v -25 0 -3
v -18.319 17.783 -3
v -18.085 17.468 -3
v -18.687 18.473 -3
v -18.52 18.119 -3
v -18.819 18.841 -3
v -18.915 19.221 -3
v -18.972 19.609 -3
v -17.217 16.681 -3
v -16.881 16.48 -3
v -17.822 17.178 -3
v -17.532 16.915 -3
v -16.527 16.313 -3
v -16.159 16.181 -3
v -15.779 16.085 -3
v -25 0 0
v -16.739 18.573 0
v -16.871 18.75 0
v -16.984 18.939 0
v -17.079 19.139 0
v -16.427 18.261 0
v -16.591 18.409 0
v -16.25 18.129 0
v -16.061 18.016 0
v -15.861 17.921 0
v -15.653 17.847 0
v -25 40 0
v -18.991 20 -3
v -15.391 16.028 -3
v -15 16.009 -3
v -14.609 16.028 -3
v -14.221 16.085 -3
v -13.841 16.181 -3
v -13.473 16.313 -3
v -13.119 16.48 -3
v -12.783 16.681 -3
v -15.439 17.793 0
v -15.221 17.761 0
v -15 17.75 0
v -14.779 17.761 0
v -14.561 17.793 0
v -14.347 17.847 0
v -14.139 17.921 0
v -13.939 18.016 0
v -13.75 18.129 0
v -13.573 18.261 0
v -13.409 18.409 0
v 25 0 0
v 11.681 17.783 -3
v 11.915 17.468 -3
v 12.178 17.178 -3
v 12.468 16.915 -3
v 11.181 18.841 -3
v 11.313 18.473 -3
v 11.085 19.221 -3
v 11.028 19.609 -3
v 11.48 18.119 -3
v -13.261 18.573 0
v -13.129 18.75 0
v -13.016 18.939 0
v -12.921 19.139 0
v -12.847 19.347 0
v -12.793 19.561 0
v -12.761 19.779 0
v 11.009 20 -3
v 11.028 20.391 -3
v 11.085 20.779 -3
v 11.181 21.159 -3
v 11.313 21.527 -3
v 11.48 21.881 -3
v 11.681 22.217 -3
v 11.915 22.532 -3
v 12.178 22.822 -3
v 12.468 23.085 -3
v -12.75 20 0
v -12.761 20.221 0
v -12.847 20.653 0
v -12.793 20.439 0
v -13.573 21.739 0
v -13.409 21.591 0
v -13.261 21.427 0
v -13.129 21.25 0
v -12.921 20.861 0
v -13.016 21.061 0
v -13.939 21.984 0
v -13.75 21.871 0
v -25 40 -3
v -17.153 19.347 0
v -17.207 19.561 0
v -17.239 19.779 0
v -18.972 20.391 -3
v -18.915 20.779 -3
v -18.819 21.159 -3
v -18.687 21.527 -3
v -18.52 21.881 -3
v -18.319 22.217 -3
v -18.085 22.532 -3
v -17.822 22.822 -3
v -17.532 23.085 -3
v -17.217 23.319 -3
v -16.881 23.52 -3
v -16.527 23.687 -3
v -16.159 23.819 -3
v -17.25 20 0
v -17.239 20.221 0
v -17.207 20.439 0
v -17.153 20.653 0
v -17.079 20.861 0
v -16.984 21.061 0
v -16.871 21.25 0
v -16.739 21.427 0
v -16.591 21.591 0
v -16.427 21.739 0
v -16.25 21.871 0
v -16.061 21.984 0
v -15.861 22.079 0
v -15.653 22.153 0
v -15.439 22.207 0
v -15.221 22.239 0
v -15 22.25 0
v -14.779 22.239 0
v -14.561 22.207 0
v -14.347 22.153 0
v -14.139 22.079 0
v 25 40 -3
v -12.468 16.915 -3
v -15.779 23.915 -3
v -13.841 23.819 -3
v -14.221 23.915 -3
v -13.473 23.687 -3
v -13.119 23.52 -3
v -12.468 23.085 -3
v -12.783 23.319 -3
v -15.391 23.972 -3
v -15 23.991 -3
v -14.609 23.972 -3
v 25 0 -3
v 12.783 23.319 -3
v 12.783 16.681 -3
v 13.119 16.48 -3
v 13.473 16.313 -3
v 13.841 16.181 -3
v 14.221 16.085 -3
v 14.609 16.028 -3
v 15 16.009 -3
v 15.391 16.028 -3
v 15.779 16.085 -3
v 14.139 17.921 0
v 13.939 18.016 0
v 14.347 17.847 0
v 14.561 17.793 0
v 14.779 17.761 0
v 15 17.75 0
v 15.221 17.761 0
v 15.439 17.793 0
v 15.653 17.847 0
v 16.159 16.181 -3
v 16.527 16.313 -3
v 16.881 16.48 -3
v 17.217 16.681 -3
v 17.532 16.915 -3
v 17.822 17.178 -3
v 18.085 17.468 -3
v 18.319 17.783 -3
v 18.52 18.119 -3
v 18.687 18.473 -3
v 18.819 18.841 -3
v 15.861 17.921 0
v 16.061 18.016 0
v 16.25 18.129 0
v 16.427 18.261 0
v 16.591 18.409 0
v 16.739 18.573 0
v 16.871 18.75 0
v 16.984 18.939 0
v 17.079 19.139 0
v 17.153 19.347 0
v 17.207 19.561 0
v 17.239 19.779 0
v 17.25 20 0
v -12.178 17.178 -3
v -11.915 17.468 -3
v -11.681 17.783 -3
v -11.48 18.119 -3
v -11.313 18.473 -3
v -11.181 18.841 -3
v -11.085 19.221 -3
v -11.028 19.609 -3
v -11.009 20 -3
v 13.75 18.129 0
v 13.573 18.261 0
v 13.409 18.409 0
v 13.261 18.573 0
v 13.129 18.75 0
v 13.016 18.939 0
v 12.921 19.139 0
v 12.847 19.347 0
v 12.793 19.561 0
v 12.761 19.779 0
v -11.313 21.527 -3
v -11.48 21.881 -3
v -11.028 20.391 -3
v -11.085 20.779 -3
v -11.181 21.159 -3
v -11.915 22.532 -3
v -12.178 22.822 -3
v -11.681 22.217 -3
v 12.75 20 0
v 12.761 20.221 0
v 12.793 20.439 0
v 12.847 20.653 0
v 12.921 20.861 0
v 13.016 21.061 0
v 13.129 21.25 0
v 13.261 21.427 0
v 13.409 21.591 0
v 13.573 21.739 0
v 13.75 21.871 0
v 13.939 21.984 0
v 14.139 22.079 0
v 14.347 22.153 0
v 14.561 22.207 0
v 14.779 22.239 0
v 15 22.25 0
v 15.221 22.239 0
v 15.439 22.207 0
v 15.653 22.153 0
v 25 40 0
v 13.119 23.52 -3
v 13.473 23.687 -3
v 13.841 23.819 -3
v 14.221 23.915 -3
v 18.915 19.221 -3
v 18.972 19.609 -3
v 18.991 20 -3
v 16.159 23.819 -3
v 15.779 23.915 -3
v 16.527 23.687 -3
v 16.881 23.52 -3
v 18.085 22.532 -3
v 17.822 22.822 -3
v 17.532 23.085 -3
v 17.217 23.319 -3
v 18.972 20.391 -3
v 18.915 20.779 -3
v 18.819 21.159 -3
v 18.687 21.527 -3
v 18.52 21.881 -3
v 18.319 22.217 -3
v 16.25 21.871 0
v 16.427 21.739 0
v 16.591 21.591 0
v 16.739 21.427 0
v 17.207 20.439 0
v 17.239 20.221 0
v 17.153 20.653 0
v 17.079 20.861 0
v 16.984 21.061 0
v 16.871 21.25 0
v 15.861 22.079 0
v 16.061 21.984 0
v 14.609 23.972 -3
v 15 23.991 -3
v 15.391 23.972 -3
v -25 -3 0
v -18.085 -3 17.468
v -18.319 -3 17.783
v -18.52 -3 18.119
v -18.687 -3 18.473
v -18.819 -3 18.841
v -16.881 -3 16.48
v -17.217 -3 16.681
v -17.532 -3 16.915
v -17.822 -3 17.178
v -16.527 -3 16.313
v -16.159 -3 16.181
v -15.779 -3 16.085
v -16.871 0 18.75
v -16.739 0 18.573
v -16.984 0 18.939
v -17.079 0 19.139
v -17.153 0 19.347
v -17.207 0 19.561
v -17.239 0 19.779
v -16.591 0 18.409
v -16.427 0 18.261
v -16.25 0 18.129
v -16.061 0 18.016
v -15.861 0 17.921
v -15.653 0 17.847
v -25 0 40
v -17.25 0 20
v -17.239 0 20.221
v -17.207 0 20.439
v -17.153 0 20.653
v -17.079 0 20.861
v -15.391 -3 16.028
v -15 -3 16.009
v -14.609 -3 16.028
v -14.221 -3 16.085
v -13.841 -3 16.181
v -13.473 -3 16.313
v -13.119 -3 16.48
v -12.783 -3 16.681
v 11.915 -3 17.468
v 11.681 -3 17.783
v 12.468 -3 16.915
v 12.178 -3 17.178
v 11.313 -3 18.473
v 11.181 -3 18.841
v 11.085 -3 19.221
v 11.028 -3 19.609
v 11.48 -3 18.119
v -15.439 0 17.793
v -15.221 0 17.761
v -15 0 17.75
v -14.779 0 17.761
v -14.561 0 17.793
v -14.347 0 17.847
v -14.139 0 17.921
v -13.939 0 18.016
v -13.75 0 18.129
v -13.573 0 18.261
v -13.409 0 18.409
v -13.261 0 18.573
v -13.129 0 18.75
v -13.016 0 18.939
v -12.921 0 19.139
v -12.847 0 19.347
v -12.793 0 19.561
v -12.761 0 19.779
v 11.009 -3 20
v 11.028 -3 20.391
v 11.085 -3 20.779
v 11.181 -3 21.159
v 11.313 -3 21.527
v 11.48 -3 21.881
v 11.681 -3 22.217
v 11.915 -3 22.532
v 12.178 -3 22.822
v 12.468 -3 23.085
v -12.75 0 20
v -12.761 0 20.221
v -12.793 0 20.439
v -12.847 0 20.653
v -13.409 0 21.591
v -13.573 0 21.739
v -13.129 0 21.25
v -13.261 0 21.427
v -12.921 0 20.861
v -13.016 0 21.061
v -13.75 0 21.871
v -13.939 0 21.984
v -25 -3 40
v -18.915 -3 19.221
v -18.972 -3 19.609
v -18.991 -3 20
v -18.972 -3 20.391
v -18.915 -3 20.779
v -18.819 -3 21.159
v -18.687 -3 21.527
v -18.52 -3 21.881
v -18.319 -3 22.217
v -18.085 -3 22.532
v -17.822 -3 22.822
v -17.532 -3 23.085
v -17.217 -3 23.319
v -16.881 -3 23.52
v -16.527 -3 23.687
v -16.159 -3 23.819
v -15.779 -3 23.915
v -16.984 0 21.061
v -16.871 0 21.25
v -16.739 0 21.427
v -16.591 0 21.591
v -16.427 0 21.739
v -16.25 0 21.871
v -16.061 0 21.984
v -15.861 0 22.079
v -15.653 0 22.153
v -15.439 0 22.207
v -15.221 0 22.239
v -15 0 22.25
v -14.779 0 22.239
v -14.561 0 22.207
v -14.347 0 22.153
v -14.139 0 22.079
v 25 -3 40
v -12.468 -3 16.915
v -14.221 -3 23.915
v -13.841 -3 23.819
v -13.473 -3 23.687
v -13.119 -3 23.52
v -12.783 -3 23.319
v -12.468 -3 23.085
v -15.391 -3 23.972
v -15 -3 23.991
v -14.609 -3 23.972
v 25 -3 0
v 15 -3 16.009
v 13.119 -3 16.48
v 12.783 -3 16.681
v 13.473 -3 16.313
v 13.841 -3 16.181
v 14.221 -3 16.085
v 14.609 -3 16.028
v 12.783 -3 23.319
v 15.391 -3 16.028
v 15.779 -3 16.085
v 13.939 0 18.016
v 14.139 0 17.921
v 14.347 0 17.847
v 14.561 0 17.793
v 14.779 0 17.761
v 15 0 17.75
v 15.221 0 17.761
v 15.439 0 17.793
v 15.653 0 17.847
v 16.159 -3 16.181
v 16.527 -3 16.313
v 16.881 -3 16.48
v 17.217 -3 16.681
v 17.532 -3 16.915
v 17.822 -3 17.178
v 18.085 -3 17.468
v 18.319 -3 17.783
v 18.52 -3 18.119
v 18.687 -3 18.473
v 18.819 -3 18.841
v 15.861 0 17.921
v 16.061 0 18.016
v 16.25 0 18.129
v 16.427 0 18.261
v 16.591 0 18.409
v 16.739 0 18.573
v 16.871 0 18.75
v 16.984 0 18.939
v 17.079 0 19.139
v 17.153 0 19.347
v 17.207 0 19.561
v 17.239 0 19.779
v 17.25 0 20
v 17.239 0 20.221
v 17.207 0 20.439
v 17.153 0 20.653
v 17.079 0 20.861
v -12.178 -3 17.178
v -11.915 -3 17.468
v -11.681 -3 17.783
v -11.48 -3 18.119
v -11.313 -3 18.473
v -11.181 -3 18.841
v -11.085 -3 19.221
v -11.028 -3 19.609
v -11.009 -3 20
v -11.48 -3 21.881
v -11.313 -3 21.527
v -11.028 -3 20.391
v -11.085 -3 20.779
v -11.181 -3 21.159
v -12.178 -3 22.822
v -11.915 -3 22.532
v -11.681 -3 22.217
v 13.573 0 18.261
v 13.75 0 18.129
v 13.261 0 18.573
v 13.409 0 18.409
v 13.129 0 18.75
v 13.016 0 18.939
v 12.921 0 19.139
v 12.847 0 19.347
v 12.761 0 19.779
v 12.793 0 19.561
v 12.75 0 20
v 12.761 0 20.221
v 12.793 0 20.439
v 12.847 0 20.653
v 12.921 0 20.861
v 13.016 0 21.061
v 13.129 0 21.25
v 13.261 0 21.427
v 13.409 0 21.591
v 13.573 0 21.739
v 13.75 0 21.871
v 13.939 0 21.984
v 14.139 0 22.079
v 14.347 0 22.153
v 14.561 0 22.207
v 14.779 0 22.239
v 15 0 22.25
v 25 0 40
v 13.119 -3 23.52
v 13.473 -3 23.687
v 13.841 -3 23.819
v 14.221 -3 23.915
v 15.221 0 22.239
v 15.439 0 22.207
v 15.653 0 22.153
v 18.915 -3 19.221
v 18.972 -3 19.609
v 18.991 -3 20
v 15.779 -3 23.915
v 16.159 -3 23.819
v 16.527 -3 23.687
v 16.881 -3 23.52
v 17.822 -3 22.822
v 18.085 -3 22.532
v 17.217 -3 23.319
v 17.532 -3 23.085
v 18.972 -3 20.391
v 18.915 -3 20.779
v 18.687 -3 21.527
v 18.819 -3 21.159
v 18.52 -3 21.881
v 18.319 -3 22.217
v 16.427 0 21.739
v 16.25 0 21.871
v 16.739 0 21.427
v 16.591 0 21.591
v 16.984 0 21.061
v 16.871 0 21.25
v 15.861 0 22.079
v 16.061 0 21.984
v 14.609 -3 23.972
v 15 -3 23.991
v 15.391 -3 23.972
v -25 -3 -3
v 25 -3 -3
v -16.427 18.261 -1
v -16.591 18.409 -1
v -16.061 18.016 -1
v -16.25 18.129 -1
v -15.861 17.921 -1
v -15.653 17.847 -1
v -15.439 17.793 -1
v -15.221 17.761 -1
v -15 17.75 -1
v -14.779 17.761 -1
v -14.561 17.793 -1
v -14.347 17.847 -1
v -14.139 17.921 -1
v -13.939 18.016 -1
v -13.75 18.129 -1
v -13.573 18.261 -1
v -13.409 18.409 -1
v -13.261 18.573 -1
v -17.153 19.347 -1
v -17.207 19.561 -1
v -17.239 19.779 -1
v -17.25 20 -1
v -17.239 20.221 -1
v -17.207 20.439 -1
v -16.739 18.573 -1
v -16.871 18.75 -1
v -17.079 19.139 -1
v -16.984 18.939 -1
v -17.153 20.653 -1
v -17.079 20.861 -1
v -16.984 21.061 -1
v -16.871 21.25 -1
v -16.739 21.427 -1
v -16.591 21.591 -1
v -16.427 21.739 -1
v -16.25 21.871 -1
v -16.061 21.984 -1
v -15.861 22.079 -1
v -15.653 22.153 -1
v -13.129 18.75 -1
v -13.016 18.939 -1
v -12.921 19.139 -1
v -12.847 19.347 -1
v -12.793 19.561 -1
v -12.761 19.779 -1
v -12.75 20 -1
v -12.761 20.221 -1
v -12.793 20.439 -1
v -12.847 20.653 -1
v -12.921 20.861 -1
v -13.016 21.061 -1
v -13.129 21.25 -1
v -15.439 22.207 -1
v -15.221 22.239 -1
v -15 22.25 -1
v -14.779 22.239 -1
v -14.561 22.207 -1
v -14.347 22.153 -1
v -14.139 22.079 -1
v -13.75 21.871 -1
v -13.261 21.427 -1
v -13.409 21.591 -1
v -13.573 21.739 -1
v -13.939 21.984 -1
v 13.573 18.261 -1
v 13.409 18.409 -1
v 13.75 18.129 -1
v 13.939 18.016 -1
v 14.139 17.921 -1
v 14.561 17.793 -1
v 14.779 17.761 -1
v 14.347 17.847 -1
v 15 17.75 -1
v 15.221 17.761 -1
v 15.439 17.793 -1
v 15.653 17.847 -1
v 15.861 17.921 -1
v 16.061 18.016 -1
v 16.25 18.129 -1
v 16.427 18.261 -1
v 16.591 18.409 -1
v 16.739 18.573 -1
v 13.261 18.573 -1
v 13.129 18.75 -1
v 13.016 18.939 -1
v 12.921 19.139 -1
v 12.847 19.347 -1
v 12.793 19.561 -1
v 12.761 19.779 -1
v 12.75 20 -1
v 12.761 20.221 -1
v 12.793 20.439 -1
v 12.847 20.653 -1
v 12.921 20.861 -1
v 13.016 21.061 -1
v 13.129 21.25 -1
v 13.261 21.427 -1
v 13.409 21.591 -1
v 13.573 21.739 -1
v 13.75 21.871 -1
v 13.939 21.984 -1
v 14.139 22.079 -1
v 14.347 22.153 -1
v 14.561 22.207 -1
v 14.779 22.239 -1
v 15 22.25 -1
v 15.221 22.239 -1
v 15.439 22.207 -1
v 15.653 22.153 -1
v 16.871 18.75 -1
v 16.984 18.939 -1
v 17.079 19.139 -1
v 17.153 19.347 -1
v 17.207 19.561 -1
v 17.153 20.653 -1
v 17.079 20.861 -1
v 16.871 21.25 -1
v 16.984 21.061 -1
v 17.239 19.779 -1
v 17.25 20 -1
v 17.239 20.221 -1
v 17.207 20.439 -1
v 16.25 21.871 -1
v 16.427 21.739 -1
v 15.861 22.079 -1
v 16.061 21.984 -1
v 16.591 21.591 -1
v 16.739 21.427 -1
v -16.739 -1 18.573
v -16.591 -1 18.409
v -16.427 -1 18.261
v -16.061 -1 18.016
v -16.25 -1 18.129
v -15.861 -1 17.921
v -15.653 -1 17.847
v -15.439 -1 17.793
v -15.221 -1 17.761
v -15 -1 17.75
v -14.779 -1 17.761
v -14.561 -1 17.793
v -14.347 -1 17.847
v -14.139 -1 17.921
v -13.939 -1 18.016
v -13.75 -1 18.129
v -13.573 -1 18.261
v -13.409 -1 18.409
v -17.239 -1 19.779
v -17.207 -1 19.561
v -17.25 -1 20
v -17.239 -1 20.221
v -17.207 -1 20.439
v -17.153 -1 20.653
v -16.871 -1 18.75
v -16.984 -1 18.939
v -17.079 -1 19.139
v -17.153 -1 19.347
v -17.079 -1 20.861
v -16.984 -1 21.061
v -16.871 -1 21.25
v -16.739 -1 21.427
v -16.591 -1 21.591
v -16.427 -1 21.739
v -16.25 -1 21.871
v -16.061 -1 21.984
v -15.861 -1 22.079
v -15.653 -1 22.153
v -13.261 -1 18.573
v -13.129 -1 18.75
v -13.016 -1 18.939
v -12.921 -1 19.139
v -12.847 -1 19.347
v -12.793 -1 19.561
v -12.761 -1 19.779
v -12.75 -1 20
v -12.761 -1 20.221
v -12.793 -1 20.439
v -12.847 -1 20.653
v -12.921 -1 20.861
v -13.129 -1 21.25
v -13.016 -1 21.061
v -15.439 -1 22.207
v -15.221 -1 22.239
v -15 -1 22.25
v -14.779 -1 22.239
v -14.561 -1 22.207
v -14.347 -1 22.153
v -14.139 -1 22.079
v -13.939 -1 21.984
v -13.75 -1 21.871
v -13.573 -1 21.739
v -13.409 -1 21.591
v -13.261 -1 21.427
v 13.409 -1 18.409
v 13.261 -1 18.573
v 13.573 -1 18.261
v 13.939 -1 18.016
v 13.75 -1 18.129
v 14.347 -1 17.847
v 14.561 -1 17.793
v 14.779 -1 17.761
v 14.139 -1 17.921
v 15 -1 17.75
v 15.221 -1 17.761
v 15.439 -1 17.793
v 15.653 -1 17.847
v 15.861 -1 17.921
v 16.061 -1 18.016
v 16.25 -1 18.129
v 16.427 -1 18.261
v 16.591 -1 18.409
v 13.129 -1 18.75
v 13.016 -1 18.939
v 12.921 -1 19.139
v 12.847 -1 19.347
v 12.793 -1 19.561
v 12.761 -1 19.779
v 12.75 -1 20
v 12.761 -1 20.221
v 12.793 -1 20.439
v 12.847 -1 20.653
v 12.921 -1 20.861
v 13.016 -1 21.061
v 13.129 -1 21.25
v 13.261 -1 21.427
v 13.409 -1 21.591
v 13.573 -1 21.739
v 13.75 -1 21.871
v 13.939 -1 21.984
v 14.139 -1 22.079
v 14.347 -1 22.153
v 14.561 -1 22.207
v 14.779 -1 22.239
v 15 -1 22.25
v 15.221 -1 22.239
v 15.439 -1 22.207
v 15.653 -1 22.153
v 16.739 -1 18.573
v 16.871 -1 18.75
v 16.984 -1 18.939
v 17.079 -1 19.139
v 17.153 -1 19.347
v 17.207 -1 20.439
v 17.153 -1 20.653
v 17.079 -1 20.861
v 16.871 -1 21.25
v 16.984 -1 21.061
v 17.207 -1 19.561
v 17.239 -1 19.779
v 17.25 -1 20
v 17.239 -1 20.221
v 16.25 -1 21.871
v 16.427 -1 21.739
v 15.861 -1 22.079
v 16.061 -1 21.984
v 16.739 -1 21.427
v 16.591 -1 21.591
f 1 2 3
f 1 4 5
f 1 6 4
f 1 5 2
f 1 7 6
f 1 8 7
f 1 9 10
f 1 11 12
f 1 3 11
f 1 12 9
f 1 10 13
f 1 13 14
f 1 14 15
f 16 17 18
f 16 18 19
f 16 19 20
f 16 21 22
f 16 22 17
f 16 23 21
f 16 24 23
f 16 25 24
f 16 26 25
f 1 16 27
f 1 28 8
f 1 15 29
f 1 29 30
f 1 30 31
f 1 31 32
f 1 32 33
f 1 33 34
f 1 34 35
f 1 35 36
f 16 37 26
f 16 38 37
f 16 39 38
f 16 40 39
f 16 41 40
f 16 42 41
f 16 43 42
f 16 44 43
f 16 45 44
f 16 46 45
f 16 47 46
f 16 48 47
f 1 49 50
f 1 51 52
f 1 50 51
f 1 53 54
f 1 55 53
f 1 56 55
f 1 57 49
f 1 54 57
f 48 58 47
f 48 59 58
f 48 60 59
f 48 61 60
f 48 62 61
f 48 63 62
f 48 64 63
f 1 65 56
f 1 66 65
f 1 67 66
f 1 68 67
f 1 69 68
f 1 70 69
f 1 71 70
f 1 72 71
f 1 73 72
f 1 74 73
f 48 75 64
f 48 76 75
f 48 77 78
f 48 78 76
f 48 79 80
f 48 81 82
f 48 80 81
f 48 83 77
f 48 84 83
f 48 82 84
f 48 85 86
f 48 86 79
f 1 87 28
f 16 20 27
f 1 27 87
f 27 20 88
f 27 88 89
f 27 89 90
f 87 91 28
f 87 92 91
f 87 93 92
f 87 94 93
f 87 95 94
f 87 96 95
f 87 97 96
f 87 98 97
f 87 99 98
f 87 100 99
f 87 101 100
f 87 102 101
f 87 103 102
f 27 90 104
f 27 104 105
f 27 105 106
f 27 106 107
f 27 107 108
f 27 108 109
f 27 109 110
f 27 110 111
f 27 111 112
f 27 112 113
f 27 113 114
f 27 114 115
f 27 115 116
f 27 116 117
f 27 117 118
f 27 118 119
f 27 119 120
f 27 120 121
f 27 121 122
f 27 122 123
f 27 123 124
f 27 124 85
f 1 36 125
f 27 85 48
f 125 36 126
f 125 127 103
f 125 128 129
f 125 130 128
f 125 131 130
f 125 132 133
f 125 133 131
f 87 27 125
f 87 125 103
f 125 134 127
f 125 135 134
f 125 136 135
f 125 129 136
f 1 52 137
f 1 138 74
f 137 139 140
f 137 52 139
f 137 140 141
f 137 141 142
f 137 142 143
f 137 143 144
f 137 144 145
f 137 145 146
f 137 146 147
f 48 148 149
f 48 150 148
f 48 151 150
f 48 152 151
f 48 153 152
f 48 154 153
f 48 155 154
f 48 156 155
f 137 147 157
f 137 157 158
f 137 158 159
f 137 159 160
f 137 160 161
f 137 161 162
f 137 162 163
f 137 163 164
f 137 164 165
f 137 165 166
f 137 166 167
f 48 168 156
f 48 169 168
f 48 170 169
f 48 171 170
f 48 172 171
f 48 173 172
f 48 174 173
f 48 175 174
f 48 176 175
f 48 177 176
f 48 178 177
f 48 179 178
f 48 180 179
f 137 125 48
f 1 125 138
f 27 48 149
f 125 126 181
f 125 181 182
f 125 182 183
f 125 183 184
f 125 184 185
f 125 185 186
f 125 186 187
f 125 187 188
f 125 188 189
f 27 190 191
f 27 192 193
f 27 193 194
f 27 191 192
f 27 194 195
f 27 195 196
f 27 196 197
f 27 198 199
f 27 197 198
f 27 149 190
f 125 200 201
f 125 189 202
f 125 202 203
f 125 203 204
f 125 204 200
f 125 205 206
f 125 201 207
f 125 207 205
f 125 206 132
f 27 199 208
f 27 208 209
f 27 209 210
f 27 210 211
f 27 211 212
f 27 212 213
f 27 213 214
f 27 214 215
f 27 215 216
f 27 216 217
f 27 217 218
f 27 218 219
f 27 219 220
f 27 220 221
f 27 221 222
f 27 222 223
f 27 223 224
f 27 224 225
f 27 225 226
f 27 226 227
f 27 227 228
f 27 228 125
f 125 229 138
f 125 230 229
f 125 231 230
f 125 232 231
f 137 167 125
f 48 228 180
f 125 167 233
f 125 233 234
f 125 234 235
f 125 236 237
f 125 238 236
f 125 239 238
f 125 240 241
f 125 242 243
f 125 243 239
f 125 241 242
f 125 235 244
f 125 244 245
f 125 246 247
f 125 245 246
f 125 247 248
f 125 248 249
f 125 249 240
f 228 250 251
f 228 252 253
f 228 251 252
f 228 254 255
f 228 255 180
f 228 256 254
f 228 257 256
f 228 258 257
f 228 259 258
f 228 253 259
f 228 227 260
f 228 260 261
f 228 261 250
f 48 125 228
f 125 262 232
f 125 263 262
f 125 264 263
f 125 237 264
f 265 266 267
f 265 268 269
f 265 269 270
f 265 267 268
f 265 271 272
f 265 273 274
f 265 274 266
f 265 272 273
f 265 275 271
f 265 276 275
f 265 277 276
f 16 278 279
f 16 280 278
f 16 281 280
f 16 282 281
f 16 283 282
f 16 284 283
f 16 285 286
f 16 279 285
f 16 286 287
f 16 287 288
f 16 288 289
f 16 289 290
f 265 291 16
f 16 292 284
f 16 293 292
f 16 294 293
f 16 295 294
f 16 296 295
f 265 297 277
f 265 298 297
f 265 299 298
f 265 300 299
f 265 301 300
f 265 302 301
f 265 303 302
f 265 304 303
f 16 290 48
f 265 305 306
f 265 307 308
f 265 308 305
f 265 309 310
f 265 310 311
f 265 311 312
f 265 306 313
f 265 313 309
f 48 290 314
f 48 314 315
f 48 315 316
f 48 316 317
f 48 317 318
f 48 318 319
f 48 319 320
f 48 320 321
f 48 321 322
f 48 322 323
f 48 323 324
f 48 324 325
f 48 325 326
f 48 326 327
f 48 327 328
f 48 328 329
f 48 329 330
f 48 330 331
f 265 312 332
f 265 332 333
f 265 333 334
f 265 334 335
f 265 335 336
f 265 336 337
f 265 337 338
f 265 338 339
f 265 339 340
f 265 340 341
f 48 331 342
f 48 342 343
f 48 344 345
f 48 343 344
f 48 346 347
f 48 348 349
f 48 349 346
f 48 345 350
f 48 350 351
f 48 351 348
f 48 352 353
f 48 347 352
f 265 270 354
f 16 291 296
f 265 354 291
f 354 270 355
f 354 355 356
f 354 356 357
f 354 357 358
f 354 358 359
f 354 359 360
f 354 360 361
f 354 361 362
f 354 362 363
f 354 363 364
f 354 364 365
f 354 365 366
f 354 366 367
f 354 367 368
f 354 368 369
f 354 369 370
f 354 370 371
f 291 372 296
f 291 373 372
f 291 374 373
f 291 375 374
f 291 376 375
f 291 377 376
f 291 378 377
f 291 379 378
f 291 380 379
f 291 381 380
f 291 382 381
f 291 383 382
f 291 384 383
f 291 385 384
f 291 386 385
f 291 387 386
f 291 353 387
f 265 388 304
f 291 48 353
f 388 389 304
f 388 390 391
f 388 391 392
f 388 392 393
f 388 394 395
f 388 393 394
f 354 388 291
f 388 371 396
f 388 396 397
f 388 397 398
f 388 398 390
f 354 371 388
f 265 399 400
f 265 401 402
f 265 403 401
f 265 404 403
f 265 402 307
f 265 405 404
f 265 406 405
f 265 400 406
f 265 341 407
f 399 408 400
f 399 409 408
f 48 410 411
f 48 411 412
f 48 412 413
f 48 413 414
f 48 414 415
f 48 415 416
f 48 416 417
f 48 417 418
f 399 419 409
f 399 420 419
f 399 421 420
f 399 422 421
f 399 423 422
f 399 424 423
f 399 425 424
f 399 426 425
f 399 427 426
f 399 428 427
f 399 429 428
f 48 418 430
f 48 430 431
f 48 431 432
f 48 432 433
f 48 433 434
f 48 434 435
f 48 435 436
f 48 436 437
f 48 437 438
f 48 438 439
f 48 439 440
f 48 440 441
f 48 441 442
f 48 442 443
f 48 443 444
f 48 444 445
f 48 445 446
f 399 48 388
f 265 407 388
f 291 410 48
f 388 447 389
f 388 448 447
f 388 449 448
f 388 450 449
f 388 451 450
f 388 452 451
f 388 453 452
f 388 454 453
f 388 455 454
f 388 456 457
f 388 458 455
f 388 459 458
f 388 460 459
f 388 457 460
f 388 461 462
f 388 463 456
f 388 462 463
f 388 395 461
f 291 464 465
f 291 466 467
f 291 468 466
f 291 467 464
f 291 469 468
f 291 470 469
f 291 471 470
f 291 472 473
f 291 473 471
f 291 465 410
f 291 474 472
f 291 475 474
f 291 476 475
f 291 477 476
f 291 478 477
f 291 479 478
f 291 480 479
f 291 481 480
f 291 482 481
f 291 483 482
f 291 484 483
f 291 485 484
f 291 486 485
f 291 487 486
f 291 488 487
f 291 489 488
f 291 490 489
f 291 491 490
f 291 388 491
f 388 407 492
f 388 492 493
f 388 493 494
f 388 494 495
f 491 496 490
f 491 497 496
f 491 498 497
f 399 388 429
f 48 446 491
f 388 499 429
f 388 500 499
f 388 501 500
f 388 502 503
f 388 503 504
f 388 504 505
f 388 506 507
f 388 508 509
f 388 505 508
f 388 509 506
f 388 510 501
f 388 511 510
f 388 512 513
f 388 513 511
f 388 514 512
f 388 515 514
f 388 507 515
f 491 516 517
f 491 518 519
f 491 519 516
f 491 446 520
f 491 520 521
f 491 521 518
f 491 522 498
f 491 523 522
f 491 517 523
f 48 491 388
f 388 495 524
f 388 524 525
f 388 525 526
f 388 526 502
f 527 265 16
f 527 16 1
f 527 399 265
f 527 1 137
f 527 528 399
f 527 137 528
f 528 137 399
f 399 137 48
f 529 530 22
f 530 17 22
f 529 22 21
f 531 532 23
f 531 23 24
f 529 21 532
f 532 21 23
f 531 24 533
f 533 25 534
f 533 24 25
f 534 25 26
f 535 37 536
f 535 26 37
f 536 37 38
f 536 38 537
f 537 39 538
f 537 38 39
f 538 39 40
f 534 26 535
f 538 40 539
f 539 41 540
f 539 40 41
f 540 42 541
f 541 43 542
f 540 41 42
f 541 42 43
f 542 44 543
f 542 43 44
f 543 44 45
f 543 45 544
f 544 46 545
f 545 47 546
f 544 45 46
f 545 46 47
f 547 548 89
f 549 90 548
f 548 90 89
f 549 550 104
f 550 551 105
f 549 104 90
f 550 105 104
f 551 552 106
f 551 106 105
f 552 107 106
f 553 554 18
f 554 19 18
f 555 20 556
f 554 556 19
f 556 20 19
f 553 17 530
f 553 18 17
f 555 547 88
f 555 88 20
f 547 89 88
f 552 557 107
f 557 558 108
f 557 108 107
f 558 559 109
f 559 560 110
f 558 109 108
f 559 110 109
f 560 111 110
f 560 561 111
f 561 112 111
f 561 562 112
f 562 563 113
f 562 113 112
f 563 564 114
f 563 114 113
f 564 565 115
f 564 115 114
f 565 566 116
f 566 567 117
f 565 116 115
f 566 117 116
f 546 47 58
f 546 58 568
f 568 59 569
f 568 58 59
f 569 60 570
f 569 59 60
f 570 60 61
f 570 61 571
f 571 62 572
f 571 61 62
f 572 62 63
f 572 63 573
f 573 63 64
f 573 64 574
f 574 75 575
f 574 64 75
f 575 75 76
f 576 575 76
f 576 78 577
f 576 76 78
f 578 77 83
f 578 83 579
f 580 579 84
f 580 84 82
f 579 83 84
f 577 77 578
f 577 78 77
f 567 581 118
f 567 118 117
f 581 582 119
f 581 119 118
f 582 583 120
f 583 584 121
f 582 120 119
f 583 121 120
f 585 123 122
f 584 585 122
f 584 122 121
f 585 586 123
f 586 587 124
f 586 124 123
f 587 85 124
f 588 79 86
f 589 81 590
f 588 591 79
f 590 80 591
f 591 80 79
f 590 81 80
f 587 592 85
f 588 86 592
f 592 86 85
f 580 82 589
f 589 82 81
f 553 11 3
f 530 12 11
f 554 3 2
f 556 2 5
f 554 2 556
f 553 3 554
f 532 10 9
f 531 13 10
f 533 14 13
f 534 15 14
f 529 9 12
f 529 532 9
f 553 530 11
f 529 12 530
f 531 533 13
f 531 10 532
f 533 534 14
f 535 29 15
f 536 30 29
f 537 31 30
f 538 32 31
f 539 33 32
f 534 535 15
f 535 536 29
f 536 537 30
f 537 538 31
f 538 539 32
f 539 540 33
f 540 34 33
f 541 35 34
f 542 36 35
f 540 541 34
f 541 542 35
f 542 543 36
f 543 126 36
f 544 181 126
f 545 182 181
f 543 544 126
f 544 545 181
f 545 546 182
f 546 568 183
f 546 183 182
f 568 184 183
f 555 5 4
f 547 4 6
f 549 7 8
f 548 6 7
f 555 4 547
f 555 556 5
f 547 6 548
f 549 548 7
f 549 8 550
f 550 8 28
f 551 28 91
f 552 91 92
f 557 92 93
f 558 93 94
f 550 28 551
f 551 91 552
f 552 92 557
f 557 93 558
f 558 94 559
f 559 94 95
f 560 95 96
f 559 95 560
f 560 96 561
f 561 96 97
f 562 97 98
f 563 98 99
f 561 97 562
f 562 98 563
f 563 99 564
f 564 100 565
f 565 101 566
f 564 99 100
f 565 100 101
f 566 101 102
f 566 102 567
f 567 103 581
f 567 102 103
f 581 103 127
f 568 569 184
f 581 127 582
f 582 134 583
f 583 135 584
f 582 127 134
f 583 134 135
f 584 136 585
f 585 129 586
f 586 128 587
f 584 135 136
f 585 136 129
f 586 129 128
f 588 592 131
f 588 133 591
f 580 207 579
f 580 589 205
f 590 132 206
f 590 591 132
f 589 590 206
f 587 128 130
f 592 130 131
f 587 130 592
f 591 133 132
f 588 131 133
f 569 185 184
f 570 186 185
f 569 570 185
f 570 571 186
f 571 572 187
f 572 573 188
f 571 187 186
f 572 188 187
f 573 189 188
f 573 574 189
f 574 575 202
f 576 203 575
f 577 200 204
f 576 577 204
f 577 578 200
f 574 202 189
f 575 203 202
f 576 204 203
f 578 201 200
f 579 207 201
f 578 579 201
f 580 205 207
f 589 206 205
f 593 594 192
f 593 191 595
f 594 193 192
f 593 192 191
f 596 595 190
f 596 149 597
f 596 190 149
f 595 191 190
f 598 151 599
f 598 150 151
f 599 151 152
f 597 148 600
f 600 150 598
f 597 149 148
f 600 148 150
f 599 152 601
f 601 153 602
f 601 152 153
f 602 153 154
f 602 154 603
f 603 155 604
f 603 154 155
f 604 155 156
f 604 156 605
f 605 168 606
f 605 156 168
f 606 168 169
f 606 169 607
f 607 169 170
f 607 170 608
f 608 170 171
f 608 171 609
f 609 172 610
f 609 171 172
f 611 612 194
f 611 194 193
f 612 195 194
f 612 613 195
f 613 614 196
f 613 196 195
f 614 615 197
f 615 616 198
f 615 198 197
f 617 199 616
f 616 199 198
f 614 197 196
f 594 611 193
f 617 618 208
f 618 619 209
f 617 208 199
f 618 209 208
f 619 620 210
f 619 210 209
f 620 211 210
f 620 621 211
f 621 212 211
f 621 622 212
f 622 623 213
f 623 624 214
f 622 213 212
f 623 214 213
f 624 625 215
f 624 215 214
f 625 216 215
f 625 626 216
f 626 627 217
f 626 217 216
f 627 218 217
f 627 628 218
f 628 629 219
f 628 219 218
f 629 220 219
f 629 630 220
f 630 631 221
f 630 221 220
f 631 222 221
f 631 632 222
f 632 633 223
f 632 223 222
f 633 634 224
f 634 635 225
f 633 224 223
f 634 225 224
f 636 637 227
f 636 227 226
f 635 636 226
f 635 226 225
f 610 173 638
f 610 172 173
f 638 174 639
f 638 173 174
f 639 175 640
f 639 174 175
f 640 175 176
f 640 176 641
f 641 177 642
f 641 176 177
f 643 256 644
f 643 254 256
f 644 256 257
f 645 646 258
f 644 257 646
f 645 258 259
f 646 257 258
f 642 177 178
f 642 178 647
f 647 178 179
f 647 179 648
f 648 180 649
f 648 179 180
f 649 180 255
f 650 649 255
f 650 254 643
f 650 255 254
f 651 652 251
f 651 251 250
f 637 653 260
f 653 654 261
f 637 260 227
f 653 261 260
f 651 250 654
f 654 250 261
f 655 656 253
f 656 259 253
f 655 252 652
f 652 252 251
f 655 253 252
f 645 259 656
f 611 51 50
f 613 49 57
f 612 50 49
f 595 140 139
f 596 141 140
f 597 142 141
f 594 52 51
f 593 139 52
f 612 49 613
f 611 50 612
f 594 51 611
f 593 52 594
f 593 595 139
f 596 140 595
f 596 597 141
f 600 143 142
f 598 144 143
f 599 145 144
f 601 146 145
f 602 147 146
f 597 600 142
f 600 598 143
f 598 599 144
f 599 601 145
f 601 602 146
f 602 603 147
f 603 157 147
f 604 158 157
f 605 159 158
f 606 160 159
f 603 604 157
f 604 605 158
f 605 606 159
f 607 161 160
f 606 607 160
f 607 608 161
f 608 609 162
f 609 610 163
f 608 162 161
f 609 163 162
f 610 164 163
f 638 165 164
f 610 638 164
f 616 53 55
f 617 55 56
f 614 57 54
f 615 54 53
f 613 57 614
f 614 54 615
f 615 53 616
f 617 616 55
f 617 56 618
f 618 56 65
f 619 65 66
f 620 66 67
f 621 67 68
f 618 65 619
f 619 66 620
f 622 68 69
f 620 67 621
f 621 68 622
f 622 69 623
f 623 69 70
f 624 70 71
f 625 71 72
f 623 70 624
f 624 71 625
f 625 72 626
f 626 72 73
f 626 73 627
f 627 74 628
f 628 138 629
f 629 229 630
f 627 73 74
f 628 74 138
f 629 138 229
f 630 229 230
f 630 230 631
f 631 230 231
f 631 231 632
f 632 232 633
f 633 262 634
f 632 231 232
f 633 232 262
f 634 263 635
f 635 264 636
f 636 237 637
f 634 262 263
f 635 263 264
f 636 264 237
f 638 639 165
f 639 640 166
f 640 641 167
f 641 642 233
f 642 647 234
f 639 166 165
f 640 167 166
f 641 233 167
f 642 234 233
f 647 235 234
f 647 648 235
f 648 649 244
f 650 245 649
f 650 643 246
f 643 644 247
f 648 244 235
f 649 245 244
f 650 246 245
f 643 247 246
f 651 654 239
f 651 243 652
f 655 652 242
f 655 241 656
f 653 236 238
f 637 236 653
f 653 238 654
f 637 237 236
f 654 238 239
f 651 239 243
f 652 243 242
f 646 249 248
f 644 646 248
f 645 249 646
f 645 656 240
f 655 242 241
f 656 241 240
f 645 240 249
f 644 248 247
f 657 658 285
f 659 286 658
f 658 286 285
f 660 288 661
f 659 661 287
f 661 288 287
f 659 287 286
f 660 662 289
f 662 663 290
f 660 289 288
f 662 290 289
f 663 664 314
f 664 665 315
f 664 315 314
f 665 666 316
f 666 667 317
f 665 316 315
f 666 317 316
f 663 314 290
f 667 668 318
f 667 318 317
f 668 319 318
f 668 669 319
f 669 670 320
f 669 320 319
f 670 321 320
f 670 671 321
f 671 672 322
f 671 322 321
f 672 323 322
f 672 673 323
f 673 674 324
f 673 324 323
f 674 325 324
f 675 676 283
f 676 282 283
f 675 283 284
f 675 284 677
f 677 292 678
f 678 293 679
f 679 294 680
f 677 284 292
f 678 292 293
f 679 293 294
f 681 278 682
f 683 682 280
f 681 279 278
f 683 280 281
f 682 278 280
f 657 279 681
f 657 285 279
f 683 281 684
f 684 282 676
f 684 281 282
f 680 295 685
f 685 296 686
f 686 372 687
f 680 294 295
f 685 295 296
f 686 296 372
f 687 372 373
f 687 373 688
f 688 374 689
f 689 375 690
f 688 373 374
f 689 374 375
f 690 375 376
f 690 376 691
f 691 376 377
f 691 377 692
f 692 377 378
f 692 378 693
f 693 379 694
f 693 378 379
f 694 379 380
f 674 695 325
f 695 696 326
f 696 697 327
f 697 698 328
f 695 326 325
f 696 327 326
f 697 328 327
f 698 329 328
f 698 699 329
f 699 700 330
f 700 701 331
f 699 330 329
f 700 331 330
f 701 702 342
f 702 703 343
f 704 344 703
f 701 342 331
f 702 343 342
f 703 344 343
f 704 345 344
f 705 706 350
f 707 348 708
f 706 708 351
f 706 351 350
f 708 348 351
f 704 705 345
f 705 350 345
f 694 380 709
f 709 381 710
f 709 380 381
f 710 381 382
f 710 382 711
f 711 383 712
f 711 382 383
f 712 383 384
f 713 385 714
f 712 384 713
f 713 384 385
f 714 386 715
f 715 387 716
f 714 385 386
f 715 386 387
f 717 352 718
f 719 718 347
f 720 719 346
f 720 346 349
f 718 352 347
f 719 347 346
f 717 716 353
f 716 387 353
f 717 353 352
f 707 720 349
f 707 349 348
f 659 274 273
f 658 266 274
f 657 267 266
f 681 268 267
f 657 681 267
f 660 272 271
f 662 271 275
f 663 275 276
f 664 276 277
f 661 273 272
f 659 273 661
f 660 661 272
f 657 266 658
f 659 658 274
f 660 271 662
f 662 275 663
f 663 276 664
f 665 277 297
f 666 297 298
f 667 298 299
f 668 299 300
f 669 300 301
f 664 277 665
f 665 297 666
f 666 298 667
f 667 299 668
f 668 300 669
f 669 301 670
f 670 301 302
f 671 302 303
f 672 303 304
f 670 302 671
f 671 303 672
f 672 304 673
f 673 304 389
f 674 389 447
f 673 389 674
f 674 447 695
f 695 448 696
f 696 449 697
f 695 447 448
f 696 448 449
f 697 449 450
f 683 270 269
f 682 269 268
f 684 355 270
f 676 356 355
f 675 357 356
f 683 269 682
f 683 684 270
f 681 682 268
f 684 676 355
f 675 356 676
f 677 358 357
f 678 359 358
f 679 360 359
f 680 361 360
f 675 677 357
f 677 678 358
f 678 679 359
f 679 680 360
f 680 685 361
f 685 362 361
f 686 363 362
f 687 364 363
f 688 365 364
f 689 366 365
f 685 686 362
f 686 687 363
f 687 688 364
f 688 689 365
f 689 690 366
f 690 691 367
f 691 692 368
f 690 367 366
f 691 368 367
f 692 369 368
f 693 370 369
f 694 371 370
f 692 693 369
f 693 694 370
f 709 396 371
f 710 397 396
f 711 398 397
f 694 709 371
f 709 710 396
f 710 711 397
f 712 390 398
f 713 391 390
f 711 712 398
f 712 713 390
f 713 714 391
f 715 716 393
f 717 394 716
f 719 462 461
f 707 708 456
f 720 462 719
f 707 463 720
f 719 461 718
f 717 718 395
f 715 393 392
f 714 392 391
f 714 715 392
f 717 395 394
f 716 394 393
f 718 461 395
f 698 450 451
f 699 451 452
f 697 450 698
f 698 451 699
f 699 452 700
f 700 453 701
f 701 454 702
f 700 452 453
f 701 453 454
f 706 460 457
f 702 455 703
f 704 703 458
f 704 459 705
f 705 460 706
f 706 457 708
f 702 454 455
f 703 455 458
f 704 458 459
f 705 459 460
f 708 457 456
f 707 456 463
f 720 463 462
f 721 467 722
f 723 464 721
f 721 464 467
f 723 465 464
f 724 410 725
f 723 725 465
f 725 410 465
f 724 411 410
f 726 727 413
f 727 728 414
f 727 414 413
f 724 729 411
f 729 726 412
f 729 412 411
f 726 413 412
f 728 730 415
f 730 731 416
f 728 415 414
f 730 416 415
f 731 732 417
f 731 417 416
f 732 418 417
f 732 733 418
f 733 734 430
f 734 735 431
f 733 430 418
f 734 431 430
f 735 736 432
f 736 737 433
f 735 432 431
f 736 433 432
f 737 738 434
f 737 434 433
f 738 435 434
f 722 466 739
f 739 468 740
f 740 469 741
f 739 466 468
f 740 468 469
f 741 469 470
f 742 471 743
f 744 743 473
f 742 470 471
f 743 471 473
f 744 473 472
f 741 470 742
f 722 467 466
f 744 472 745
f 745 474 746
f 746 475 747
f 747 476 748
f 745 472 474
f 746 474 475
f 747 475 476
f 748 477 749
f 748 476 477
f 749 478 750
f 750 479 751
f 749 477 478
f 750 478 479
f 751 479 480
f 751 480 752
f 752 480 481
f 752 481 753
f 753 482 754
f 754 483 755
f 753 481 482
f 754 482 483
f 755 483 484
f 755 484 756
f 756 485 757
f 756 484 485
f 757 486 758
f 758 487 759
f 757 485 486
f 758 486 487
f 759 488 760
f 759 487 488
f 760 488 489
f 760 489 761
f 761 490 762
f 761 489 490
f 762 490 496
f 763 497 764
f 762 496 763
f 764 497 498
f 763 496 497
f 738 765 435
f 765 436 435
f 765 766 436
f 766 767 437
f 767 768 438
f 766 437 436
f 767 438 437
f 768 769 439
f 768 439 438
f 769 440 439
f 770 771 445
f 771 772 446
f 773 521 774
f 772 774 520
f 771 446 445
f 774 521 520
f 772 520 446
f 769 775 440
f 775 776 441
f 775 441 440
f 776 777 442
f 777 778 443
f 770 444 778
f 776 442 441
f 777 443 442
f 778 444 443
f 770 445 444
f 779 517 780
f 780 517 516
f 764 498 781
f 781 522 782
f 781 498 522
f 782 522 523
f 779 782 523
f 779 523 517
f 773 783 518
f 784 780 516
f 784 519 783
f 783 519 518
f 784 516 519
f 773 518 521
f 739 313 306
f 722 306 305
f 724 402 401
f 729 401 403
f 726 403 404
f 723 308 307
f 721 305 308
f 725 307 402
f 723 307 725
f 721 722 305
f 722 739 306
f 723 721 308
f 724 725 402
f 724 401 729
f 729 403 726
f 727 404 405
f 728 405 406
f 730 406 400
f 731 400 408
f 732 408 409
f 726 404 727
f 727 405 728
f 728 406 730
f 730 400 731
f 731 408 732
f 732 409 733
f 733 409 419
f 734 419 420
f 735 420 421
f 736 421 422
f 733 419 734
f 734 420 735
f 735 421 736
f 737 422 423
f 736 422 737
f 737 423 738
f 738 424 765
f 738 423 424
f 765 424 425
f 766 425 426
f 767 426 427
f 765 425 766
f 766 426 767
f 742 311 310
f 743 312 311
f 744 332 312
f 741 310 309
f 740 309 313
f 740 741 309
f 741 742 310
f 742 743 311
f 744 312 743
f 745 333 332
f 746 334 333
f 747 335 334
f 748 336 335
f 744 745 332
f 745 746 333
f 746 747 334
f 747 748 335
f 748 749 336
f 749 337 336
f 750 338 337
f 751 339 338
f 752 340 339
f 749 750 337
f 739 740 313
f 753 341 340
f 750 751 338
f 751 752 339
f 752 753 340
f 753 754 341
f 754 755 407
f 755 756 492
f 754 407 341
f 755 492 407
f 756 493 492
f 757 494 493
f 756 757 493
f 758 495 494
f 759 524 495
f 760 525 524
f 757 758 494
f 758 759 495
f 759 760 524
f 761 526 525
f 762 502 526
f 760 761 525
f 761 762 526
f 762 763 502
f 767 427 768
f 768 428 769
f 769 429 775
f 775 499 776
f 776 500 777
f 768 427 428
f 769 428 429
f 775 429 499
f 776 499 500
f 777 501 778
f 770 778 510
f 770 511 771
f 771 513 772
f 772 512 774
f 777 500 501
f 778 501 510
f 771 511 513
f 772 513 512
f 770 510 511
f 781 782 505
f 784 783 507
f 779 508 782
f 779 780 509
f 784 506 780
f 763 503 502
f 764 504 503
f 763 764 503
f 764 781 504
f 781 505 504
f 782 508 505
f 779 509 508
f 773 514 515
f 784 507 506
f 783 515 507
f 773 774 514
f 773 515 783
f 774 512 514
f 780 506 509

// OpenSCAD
$fn = 64;

width      = 50;
flange_len = 40;
thickness  = 3;

hole_d     = 4.5;
csink_d    = 8;
csink_depth = 2;

hole_x = width / 2 - 10;
horizontal_y = flange_len / 2;
vertical_z   = flange_len / 2;

eps = 0.01;

module bracket() {
    union() {
        // Horizontal flange
        translate([-width / 2, 0, -thickness])
            cube([width, flange_len, thickness]);

        // Vertical flange
        translate([-width / 2, -thickness, 0])
            cube([width, thickness, flange_len]);

        // Outer corner connection
        translate([-width / 2, -thickness, -thickness])
            cube([width, thickness, thickness]);
    }
}

module horizontal_countersunk_hole(x, y) {
    // Through-hole
    translate([x, y, -thickness - eps])
        cylinder(
            h = thickness + 2 * eps,
            d = hole_d
        );

    // Countersink from the outer/bottom surface
    translate([x, y, -thickness - eps])
        cylinder(
            h = csink_depth + eps,
            d1 = csink_d,
            d2 = hole_d
        );
}

module vertical_countersunk_hole(x, z) {
    // Through-hole
    translate([x, -thickness - eps, z])
        rotate([-90, 0, 0])
            cylinder(
                h = thickness + 2 * eps,
                d = hole_d
            );

    // Countersink from the outer/back surface
    translate([x, -thickness - eps, z])
        rotate([-90, 0, 0])
            cylinder(
                h = csink_depth + eps,
                d1 = csink_d,
                d2 = hole_d
            );
}

difference() {
    bracket();

    for (x = [-hole_x, hole_x])
        horizontal_countersunk_hole(x, horizontal_y);

    for (x = [-hole_x, hole_x])
        vertical_countersunk_hole(x, vertical_z);
}
